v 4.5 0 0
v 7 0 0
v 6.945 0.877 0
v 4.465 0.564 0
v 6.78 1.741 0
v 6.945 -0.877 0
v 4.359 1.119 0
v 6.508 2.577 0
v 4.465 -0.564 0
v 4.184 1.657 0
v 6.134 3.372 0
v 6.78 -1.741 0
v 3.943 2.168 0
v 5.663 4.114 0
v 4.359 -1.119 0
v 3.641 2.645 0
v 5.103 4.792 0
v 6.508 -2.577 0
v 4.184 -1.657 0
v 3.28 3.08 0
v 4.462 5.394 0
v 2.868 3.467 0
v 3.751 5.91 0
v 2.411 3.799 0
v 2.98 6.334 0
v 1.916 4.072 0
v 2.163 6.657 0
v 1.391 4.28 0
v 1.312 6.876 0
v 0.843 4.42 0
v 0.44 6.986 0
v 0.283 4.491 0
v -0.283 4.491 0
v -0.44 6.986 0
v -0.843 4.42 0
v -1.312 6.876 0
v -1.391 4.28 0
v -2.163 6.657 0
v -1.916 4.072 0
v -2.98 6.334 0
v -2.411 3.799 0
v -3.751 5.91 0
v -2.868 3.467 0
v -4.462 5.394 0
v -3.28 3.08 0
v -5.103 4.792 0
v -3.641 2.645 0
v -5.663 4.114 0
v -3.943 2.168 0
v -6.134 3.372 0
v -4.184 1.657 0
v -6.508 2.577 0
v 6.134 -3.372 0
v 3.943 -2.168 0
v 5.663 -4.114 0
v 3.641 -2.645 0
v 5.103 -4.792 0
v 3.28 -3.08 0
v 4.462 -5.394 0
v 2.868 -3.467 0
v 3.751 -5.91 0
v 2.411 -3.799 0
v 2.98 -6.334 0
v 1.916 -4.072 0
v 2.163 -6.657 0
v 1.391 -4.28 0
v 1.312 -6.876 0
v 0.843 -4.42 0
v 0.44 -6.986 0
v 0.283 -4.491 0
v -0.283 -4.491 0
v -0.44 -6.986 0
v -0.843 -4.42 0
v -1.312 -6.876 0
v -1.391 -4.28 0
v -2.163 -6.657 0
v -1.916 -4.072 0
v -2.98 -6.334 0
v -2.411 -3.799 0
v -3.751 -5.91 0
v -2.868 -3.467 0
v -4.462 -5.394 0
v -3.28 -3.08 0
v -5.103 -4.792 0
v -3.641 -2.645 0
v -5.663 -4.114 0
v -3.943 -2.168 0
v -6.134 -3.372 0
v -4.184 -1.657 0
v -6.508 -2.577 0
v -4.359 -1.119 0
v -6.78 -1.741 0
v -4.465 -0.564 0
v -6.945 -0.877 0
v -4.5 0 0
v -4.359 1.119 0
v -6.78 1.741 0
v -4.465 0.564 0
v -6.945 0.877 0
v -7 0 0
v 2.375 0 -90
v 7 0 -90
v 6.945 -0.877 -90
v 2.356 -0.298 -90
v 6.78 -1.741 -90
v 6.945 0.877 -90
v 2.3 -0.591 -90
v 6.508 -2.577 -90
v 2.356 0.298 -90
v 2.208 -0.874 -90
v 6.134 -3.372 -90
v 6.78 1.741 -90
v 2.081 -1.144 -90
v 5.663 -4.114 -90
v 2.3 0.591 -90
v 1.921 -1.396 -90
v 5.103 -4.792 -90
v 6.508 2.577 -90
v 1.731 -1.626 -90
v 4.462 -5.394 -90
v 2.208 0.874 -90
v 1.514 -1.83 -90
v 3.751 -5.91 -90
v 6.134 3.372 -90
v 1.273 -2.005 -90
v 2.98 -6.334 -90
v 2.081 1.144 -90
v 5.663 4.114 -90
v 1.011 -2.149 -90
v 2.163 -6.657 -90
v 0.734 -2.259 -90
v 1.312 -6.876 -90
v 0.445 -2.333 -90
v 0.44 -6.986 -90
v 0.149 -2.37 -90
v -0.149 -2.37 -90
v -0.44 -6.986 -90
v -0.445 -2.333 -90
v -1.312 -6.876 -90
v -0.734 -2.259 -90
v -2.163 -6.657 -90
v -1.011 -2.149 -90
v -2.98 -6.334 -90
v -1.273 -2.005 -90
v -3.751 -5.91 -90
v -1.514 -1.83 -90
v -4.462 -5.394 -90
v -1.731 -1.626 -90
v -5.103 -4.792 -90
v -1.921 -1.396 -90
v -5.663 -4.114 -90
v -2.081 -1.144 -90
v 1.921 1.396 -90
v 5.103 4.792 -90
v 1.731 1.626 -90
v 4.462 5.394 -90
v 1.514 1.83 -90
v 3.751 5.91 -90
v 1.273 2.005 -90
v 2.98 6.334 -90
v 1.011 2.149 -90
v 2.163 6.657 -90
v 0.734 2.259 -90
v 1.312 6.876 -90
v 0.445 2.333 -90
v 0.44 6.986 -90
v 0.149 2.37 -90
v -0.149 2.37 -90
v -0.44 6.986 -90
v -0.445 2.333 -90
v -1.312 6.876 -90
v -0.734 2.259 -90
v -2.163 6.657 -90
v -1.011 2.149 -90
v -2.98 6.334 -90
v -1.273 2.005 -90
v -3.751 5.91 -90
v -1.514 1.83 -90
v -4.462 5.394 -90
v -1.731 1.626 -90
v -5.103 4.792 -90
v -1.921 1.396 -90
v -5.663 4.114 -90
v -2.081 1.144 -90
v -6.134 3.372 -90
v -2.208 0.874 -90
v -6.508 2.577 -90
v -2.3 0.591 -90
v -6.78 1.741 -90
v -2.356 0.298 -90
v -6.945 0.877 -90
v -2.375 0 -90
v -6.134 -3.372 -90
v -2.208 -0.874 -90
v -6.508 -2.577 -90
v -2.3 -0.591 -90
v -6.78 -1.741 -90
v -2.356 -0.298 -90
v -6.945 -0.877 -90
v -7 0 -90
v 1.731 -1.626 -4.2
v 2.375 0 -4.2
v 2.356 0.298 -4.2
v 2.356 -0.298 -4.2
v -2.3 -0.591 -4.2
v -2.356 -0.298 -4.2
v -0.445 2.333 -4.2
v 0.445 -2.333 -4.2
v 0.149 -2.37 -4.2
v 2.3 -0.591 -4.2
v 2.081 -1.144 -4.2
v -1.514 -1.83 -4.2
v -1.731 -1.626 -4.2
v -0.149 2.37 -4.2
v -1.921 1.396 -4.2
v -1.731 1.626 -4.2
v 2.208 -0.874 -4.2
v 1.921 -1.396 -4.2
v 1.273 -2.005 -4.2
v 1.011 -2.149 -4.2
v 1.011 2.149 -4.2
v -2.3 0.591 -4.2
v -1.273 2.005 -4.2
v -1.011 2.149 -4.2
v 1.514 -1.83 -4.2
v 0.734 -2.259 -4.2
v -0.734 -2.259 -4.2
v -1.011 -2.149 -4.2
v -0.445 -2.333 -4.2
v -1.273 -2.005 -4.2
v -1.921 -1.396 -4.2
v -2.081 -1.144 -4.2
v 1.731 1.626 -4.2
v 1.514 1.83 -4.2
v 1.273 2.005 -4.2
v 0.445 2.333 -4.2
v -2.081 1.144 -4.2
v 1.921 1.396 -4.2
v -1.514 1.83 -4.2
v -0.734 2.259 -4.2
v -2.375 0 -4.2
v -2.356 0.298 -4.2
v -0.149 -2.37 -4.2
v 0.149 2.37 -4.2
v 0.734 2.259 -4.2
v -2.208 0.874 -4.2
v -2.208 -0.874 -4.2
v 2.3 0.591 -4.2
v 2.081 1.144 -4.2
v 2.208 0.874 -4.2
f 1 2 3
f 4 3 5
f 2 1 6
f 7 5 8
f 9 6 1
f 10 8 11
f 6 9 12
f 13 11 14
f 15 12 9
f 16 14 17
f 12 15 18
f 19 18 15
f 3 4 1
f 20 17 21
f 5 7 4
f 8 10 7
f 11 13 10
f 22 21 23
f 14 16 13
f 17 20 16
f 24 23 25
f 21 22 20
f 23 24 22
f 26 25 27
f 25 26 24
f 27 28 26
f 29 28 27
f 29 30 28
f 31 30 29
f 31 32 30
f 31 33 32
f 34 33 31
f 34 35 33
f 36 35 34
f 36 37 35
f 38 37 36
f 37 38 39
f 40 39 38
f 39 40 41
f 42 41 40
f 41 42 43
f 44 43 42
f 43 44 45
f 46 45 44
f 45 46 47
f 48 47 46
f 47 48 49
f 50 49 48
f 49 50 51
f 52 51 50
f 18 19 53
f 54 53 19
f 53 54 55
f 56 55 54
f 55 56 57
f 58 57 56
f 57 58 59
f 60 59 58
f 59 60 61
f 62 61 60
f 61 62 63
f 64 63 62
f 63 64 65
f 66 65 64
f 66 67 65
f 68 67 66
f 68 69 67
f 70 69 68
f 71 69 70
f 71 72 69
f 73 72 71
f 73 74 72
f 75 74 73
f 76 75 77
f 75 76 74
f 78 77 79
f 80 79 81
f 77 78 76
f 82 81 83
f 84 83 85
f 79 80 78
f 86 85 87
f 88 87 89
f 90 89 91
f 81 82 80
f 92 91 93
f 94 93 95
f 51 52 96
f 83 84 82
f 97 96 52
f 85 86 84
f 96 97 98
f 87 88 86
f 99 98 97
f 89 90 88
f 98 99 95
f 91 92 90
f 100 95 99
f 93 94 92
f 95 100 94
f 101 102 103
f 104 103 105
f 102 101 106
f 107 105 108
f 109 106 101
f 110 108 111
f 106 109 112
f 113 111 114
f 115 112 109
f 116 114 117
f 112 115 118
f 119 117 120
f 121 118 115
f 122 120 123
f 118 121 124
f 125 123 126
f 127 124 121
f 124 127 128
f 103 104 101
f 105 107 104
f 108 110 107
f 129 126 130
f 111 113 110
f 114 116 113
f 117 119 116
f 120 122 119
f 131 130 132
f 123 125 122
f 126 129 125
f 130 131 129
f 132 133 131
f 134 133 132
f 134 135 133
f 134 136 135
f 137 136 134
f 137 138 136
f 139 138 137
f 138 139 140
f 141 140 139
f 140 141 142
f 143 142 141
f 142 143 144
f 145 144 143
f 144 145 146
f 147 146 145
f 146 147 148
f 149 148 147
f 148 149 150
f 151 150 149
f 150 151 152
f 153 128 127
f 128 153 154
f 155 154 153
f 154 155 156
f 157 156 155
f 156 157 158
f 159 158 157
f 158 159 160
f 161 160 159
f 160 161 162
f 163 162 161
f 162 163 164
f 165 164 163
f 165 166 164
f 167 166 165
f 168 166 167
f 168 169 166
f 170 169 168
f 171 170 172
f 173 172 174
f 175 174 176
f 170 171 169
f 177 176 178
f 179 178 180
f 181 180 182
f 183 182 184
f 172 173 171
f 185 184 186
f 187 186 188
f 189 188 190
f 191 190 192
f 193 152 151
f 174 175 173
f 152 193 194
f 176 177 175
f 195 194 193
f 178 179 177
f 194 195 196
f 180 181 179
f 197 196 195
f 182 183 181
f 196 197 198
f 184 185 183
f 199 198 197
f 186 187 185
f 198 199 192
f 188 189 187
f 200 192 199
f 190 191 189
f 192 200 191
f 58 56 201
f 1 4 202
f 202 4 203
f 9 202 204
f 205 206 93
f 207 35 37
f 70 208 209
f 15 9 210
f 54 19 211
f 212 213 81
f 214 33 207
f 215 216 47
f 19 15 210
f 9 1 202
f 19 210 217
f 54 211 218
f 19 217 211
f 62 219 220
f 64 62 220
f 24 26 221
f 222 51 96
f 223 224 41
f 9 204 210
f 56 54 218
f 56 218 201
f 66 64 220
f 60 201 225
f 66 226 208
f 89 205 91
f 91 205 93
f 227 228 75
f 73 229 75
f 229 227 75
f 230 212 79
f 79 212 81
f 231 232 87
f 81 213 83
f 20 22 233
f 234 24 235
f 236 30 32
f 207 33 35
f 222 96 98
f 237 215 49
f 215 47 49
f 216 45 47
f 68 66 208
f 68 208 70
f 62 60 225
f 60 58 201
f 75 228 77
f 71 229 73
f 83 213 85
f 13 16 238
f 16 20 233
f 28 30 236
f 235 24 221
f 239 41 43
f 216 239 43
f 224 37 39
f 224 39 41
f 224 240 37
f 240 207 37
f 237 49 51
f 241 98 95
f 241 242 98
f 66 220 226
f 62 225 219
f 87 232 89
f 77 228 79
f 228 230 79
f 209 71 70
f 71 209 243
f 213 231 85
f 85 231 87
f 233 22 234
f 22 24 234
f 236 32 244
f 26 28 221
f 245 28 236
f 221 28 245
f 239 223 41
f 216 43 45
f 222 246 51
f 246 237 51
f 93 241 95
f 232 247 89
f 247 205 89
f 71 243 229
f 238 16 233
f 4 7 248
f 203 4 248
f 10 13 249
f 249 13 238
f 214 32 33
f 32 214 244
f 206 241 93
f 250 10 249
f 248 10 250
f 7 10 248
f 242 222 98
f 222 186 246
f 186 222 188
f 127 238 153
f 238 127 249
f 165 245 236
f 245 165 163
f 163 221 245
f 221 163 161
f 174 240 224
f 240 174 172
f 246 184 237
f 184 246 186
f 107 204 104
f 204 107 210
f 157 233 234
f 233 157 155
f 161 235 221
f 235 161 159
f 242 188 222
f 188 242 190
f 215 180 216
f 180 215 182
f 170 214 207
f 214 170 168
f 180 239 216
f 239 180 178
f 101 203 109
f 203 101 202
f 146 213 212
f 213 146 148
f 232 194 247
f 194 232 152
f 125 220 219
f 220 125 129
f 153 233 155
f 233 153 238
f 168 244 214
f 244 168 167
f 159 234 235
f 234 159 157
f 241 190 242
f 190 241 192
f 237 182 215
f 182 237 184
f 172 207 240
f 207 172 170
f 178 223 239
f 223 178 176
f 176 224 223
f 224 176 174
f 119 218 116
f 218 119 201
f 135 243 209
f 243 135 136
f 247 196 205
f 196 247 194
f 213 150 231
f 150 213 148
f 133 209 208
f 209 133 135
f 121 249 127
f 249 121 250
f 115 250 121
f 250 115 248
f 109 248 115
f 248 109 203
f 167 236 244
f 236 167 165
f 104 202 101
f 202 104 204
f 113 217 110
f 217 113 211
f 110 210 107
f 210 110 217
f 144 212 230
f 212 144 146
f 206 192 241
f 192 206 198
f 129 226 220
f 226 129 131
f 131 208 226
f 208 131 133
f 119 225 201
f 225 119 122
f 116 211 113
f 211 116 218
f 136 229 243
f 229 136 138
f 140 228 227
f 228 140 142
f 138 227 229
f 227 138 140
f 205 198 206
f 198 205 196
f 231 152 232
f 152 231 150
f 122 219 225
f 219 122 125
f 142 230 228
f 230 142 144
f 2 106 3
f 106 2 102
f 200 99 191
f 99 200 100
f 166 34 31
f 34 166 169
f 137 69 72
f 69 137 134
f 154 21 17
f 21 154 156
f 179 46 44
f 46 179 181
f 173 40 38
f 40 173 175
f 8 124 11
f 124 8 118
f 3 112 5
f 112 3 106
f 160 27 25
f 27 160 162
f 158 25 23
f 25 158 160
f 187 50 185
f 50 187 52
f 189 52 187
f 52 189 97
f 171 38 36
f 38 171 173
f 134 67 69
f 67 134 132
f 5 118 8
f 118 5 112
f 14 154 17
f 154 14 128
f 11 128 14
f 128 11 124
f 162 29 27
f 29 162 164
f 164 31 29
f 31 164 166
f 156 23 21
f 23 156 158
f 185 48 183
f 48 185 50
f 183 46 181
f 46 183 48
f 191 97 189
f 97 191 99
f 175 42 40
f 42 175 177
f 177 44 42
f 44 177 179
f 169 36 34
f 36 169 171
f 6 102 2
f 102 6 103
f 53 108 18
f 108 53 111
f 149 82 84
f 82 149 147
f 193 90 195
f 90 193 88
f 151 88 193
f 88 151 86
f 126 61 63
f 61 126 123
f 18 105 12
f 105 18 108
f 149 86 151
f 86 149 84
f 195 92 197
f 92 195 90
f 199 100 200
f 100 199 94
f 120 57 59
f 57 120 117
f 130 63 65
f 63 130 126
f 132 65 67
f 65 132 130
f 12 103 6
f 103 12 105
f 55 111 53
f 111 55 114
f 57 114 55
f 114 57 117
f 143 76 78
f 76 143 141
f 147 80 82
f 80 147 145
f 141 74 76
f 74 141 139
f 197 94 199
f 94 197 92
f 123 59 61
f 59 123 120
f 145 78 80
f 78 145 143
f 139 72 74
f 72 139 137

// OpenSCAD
$fn = 50;


difference() {
	union() {
		translate(v = [0, 0, -90.0000000000]) {
			cylinder(h = 90, r = 7.0000000000);
		}
		cylinder(h = 0, r = 16.0000000000);
	}
	union() {
		translate(v = [0, 0, 0]) {
			rotate(a = [0, 0, 0]) {
				difference() {
					union() {
						#translate(v = [0, 0, -90.0000000000]) {
							cylinder(h = 90, r = 2.2500000000);
						}
						#translate(v = [0, 0, -4.2000000000]) {
							cylinder(h = 4.2000000000, r = 7.0000000000, r1 = 2.3750000000, r2 = 4.5000000000);
						}
						#translate(v = [0, 0, -90.0000000000]) {
							cylinder(h = 90, r = 2.3750000000);
						}
						#translate(v = [0, 0, -90.0000000000]) {
							cylinder(h = 90, r = 2.2500000000);
						}
					}
					union();
				}
			}
		}
	}
}
